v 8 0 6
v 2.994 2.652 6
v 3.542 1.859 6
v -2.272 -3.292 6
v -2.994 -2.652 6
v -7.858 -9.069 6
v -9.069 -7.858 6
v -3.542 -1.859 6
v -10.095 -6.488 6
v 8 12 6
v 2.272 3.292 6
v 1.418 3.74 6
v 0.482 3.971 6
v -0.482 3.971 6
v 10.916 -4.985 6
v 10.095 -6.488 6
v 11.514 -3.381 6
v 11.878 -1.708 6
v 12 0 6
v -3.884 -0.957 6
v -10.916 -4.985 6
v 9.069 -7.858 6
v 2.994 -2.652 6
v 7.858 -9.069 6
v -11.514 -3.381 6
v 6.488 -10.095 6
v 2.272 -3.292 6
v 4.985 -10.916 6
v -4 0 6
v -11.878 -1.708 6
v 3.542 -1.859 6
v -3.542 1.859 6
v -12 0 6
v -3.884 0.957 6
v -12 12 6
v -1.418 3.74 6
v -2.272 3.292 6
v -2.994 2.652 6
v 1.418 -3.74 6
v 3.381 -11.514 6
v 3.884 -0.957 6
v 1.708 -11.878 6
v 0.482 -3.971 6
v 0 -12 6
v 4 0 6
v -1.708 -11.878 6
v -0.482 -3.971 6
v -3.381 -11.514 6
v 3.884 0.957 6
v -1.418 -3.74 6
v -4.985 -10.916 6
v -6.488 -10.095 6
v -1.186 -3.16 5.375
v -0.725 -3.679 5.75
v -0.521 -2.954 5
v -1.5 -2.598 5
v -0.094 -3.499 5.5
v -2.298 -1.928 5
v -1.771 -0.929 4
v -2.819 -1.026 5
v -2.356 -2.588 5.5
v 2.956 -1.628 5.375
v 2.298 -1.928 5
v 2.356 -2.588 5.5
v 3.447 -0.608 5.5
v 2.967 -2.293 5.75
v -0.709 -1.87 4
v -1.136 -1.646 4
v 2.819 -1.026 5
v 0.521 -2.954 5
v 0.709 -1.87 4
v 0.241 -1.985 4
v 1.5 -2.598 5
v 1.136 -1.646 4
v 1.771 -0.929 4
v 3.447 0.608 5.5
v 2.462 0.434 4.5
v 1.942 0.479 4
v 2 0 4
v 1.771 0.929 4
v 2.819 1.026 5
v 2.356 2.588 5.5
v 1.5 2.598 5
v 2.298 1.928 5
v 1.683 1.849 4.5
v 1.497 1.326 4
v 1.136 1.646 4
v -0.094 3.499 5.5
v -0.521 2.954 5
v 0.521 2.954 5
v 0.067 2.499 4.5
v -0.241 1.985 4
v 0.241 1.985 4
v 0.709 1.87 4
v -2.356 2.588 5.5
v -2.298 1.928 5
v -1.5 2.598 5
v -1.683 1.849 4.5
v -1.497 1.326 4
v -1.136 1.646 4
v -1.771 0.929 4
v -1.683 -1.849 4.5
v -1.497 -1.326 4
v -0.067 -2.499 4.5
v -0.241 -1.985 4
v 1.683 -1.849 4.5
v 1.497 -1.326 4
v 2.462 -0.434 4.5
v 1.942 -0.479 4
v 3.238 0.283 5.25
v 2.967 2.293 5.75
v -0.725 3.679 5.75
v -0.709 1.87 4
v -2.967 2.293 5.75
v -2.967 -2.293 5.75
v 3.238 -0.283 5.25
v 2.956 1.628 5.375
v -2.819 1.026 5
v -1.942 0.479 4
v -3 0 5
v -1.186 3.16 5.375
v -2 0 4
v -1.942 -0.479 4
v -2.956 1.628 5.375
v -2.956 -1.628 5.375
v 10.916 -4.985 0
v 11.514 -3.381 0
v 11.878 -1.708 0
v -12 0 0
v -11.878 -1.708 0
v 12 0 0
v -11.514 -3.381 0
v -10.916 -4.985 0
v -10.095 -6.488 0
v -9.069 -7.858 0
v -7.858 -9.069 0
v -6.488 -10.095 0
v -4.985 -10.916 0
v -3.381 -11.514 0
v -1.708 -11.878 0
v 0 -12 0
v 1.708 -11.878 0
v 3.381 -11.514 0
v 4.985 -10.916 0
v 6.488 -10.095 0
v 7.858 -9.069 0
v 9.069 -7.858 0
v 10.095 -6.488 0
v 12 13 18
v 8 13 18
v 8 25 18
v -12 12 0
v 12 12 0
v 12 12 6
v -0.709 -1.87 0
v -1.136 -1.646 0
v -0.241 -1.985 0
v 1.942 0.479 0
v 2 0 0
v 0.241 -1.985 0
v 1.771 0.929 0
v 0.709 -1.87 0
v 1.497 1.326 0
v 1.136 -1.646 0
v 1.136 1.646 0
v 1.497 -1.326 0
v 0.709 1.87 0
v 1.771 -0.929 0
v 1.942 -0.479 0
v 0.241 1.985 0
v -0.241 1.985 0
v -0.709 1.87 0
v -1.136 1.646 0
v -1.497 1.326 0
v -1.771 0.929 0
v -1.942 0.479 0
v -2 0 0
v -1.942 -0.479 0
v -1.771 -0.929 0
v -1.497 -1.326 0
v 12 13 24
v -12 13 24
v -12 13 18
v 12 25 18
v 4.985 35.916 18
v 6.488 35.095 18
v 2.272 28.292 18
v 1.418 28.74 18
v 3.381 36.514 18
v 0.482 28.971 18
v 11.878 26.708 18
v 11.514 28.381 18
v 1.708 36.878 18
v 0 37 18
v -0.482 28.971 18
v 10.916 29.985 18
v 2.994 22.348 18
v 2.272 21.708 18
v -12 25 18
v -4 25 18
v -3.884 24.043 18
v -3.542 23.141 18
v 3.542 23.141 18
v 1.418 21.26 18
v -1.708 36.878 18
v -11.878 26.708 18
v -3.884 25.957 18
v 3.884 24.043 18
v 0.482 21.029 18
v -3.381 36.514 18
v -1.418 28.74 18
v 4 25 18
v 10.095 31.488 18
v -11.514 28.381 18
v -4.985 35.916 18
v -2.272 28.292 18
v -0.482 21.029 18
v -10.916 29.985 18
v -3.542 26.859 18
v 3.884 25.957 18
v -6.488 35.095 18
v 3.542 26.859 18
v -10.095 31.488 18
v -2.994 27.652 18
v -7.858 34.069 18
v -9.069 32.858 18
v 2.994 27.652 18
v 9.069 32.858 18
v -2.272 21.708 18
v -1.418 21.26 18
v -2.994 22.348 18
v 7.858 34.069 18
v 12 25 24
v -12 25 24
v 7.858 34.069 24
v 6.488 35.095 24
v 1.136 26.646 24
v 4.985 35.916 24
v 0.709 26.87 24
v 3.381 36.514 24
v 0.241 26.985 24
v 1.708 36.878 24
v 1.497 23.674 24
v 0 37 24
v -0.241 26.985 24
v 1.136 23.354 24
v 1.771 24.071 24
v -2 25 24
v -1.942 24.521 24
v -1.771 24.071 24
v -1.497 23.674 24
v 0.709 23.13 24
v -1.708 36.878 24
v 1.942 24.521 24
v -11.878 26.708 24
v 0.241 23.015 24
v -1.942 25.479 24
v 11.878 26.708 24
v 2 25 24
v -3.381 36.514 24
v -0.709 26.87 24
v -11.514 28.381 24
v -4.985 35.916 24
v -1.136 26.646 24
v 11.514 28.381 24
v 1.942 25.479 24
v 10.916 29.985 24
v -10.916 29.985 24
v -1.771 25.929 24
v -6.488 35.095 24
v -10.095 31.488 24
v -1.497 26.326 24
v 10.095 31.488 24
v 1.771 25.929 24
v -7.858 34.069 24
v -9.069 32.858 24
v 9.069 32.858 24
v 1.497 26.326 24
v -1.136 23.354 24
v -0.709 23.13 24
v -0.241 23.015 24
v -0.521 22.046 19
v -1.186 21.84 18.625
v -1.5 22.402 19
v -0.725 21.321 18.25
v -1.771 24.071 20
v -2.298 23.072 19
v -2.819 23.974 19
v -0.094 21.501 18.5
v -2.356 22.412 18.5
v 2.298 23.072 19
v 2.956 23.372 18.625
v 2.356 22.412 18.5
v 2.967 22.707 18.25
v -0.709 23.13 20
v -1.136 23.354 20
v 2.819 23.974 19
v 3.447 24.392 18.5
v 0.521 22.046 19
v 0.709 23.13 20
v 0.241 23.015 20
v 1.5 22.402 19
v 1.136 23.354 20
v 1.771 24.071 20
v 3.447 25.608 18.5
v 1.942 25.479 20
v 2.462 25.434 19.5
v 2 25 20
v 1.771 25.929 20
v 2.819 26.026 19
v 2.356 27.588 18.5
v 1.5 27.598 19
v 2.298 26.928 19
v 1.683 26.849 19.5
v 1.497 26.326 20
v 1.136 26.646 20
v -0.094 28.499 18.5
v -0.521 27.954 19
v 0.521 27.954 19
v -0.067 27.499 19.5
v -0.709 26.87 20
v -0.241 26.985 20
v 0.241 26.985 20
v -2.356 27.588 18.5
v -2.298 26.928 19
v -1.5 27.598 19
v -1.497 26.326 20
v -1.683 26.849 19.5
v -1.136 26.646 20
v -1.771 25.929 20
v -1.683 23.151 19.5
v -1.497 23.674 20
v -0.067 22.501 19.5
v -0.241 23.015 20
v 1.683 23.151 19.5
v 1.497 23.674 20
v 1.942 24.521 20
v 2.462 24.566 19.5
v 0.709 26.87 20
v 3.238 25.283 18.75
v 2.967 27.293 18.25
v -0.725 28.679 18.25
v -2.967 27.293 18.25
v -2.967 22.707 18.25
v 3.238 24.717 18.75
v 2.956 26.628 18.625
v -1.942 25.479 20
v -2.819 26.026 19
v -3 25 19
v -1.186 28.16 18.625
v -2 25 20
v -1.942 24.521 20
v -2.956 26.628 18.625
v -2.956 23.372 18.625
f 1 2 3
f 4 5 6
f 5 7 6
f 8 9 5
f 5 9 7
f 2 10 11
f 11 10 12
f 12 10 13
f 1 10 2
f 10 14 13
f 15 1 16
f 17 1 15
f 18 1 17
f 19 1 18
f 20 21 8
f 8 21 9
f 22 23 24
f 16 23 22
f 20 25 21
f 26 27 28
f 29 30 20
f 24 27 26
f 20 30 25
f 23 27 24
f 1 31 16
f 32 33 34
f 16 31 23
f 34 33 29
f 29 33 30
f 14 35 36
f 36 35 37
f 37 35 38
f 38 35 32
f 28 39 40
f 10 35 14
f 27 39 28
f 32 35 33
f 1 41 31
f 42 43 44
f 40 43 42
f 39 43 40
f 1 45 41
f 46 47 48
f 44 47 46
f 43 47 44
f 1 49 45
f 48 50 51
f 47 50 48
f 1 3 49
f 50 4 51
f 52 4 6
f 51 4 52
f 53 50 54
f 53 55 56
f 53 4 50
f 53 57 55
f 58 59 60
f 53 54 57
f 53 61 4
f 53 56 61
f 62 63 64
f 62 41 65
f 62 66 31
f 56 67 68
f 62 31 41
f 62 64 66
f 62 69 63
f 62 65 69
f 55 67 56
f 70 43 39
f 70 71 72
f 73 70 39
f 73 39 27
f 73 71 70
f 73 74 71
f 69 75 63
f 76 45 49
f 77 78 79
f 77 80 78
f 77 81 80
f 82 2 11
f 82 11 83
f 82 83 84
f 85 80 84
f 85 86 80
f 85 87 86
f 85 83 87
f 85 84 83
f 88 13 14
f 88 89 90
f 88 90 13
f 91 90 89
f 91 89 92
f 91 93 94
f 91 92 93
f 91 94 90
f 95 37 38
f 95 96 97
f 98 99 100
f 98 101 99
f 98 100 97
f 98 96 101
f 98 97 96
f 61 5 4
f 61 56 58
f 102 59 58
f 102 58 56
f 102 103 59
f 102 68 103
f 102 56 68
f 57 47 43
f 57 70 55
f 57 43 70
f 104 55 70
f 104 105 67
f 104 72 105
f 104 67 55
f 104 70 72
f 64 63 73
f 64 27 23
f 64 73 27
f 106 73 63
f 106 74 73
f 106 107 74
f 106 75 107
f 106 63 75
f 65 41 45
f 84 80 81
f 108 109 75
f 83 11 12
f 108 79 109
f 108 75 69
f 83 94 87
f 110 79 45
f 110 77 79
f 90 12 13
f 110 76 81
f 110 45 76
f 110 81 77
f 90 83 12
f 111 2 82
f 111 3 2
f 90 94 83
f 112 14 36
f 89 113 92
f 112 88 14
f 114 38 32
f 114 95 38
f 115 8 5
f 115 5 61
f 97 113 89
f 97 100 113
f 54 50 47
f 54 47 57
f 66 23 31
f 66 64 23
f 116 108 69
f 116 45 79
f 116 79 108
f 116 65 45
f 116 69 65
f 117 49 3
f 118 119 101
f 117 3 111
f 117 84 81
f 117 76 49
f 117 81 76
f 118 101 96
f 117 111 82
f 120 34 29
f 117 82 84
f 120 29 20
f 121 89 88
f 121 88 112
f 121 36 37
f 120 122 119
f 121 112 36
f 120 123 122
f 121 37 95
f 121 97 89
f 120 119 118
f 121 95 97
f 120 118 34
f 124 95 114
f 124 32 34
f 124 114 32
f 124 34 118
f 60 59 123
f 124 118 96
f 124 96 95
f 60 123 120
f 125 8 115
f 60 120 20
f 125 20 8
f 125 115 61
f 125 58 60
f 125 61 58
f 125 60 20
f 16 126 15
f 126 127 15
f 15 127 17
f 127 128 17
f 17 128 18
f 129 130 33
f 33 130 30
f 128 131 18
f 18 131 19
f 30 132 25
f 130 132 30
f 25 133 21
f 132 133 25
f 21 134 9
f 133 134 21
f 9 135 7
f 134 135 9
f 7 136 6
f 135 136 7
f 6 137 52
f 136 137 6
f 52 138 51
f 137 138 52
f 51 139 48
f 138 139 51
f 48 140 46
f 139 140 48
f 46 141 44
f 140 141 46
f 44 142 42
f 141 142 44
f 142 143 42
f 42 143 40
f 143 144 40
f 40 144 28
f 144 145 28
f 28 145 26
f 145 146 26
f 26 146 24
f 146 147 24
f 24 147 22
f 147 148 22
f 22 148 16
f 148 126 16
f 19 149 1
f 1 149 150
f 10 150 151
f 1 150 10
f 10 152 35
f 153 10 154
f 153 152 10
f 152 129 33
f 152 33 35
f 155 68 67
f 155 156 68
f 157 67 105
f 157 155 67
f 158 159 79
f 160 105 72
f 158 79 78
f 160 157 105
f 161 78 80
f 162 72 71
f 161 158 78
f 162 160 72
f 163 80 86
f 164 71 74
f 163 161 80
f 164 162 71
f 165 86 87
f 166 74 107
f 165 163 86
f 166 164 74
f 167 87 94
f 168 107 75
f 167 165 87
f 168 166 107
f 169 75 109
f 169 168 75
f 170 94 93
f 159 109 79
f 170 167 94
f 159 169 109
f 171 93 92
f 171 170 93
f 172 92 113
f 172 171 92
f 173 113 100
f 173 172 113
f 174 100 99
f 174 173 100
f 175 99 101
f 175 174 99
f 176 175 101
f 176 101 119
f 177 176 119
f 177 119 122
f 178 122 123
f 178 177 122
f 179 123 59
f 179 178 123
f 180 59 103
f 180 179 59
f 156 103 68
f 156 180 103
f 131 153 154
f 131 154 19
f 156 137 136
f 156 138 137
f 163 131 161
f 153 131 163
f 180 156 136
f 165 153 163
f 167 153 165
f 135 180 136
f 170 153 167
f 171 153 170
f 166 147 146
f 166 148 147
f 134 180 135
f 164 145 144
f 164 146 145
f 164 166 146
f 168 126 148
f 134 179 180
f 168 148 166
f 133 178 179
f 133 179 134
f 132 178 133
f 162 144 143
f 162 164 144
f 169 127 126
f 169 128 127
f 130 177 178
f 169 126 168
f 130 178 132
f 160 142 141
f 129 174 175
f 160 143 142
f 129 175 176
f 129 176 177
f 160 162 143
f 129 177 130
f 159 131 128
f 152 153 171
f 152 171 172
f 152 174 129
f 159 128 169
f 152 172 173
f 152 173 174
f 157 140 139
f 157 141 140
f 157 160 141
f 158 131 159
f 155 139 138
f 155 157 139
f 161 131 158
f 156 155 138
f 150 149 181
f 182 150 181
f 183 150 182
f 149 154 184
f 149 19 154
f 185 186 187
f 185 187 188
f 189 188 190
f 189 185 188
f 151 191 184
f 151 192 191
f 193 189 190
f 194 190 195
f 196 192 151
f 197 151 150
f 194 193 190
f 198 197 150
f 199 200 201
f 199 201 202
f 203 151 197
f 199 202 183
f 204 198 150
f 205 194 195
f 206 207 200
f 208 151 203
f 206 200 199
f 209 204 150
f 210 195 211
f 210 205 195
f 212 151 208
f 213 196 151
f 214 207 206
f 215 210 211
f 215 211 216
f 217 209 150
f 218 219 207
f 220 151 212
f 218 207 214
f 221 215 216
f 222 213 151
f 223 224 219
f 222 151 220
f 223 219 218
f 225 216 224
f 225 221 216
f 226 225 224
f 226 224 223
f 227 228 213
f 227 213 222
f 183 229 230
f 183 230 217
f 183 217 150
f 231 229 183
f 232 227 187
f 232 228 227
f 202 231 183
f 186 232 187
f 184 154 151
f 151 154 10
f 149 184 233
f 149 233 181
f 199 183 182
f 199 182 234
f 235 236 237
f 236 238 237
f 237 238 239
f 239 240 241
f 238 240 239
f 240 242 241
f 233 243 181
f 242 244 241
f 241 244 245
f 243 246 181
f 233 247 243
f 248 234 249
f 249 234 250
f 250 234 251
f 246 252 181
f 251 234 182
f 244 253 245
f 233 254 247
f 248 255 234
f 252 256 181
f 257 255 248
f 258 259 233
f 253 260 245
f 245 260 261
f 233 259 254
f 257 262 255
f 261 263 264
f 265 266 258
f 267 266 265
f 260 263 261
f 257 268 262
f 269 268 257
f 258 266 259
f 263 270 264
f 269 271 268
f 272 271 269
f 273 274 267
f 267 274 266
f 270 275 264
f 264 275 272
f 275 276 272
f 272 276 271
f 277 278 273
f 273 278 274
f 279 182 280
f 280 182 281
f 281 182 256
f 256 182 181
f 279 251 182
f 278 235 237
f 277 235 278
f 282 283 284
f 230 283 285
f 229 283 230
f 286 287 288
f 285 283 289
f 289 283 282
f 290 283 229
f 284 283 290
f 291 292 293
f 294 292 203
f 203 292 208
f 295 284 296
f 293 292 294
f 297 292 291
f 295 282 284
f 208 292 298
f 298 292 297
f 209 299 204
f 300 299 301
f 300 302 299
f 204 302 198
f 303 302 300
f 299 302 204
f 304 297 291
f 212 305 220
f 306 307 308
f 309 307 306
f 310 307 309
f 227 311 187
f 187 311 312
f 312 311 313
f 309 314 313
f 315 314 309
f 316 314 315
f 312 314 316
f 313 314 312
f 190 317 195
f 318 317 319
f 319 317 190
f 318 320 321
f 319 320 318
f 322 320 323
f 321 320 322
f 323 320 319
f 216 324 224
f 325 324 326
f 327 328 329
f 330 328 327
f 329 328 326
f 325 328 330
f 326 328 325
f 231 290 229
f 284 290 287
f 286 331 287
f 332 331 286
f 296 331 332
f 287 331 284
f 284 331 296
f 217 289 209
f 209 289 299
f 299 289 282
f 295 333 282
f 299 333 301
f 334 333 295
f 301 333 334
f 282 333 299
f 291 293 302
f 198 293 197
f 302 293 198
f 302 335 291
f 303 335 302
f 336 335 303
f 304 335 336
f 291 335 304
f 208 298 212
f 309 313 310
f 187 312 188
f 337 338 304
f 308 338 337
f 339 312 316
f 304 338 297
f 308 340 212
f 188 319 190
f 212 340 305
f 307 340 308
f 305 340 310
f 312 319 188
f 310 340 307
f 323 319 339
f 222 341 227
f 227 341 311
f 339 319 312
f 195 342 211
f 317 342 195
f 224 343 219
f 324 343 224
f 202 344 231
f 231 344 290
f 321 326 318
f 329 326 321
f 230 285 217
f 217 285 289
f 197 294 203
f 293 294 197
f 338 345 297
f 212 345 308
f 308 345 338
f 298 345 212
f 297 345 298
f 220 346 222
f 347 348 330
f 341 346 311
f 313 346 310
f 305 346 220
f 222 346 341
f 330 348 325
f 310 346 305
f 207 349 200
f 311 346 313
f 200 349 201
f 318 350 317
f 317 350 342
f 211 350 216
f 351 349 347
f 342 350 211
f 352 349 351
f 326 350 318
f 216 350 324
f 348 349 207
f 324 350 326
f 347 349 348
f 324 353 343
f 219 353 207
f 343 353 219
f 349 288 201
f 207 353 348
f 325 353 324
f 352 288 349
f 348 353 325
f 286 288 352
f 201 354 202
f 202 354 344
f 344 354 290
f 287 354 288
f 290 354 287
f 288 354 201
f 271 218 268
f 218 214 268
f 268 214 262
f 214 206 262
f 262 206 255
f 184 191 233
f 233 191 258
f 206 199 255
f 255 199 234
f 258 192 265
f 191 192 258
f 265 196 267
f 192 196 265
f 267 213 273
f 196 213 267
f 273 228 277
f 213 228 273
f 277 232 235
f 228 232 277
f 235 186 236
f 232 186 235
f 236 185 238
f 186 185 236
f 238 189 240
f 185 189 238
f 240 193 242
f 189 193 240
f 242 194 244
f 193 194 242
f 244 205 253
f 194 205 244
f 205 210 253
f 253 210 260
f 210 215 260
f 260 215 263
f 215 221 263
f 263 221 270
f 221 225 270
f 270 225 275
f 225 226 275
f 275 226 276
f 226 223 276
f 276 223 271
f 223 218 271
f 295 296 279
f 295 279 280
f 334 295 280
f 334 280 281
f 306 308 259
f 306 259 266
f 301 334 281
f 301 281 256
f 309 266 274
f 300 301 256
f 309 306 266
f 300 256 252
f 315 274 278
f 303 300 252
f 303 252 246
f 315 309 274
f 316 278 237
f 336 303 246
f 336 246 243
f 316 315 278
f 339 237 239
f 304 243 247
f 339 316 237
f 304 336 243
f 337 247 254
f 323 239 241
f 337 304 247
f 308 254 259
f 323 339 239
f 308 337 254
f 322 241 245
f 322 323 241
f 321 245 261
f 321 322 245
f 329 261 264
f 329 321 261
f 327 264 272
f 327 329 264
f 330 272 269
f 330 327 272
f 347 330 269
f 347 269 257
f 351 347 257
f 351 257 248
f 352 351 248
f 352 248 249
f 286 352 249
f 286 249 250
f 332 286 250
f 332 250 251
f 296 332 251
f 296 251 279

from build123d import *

# Parameters (mm, degrees)
SKETCH_R     = 2
PAD_DEPTH    = 6
PAD001_DEPTH = 4
SKETCH004_R  = 2
PAD002_DEPTH = 6
CHAMFER_SIZE = 2


with BuildPart() as part:
    # Sketch → Pad (new body)
    with BuildSketch(Plane.XY):
        with BuildLine():
            Line((-12, 0), (-12, 12))
            Line((-12, 12), (12, 12))
            Line((12, 12), (12, 0))
            ThreePointArc((-12, 0), (0, -12), (12, 0))
        make_face()
        Circle(SKETCH_R, mode=Mode.SUBTRACT)
    extrude(amount=PAD_DEPTH)

    # Sketch003 (on Face3 of Pad) → Pad001 (join)
    with BuildSketch(Plane.YZ.offset(12)):
        Polygon((0, 6), (13, 18), (25, 18), (12, 6), align=None)
    extrude(amount=-PAD001_DEPTH)

    # Sketch004 (on Face12 of Pad001) → Pad002 (join)
    with BuildSketch(Plane.XY.offset(18)):
        with BuildLine():
            Line((12, 25), (12, 13))
            Line((12, 13), (-12, 13))
            Line((-12, 13), (-12, 25))
            ThreePointArc((12, 25), (0, 37), (-12, 25))
        make_face()
        with Locations((0, 25)):
            Circle(SKETCH004_R, mode=Mode.SUBTRACT)
    extrude(amount=PAD002_DEPTH)

    # Chamfer
    chamfer_edges = [part.edges().sort_by_distance(p)[0] for p in [
        (-2, 0, 6),
        (-2, 25, 18),
    ]]
    chamfer(chamfer_edges, length=CHAMFER_SIZE)


solid = part.part
